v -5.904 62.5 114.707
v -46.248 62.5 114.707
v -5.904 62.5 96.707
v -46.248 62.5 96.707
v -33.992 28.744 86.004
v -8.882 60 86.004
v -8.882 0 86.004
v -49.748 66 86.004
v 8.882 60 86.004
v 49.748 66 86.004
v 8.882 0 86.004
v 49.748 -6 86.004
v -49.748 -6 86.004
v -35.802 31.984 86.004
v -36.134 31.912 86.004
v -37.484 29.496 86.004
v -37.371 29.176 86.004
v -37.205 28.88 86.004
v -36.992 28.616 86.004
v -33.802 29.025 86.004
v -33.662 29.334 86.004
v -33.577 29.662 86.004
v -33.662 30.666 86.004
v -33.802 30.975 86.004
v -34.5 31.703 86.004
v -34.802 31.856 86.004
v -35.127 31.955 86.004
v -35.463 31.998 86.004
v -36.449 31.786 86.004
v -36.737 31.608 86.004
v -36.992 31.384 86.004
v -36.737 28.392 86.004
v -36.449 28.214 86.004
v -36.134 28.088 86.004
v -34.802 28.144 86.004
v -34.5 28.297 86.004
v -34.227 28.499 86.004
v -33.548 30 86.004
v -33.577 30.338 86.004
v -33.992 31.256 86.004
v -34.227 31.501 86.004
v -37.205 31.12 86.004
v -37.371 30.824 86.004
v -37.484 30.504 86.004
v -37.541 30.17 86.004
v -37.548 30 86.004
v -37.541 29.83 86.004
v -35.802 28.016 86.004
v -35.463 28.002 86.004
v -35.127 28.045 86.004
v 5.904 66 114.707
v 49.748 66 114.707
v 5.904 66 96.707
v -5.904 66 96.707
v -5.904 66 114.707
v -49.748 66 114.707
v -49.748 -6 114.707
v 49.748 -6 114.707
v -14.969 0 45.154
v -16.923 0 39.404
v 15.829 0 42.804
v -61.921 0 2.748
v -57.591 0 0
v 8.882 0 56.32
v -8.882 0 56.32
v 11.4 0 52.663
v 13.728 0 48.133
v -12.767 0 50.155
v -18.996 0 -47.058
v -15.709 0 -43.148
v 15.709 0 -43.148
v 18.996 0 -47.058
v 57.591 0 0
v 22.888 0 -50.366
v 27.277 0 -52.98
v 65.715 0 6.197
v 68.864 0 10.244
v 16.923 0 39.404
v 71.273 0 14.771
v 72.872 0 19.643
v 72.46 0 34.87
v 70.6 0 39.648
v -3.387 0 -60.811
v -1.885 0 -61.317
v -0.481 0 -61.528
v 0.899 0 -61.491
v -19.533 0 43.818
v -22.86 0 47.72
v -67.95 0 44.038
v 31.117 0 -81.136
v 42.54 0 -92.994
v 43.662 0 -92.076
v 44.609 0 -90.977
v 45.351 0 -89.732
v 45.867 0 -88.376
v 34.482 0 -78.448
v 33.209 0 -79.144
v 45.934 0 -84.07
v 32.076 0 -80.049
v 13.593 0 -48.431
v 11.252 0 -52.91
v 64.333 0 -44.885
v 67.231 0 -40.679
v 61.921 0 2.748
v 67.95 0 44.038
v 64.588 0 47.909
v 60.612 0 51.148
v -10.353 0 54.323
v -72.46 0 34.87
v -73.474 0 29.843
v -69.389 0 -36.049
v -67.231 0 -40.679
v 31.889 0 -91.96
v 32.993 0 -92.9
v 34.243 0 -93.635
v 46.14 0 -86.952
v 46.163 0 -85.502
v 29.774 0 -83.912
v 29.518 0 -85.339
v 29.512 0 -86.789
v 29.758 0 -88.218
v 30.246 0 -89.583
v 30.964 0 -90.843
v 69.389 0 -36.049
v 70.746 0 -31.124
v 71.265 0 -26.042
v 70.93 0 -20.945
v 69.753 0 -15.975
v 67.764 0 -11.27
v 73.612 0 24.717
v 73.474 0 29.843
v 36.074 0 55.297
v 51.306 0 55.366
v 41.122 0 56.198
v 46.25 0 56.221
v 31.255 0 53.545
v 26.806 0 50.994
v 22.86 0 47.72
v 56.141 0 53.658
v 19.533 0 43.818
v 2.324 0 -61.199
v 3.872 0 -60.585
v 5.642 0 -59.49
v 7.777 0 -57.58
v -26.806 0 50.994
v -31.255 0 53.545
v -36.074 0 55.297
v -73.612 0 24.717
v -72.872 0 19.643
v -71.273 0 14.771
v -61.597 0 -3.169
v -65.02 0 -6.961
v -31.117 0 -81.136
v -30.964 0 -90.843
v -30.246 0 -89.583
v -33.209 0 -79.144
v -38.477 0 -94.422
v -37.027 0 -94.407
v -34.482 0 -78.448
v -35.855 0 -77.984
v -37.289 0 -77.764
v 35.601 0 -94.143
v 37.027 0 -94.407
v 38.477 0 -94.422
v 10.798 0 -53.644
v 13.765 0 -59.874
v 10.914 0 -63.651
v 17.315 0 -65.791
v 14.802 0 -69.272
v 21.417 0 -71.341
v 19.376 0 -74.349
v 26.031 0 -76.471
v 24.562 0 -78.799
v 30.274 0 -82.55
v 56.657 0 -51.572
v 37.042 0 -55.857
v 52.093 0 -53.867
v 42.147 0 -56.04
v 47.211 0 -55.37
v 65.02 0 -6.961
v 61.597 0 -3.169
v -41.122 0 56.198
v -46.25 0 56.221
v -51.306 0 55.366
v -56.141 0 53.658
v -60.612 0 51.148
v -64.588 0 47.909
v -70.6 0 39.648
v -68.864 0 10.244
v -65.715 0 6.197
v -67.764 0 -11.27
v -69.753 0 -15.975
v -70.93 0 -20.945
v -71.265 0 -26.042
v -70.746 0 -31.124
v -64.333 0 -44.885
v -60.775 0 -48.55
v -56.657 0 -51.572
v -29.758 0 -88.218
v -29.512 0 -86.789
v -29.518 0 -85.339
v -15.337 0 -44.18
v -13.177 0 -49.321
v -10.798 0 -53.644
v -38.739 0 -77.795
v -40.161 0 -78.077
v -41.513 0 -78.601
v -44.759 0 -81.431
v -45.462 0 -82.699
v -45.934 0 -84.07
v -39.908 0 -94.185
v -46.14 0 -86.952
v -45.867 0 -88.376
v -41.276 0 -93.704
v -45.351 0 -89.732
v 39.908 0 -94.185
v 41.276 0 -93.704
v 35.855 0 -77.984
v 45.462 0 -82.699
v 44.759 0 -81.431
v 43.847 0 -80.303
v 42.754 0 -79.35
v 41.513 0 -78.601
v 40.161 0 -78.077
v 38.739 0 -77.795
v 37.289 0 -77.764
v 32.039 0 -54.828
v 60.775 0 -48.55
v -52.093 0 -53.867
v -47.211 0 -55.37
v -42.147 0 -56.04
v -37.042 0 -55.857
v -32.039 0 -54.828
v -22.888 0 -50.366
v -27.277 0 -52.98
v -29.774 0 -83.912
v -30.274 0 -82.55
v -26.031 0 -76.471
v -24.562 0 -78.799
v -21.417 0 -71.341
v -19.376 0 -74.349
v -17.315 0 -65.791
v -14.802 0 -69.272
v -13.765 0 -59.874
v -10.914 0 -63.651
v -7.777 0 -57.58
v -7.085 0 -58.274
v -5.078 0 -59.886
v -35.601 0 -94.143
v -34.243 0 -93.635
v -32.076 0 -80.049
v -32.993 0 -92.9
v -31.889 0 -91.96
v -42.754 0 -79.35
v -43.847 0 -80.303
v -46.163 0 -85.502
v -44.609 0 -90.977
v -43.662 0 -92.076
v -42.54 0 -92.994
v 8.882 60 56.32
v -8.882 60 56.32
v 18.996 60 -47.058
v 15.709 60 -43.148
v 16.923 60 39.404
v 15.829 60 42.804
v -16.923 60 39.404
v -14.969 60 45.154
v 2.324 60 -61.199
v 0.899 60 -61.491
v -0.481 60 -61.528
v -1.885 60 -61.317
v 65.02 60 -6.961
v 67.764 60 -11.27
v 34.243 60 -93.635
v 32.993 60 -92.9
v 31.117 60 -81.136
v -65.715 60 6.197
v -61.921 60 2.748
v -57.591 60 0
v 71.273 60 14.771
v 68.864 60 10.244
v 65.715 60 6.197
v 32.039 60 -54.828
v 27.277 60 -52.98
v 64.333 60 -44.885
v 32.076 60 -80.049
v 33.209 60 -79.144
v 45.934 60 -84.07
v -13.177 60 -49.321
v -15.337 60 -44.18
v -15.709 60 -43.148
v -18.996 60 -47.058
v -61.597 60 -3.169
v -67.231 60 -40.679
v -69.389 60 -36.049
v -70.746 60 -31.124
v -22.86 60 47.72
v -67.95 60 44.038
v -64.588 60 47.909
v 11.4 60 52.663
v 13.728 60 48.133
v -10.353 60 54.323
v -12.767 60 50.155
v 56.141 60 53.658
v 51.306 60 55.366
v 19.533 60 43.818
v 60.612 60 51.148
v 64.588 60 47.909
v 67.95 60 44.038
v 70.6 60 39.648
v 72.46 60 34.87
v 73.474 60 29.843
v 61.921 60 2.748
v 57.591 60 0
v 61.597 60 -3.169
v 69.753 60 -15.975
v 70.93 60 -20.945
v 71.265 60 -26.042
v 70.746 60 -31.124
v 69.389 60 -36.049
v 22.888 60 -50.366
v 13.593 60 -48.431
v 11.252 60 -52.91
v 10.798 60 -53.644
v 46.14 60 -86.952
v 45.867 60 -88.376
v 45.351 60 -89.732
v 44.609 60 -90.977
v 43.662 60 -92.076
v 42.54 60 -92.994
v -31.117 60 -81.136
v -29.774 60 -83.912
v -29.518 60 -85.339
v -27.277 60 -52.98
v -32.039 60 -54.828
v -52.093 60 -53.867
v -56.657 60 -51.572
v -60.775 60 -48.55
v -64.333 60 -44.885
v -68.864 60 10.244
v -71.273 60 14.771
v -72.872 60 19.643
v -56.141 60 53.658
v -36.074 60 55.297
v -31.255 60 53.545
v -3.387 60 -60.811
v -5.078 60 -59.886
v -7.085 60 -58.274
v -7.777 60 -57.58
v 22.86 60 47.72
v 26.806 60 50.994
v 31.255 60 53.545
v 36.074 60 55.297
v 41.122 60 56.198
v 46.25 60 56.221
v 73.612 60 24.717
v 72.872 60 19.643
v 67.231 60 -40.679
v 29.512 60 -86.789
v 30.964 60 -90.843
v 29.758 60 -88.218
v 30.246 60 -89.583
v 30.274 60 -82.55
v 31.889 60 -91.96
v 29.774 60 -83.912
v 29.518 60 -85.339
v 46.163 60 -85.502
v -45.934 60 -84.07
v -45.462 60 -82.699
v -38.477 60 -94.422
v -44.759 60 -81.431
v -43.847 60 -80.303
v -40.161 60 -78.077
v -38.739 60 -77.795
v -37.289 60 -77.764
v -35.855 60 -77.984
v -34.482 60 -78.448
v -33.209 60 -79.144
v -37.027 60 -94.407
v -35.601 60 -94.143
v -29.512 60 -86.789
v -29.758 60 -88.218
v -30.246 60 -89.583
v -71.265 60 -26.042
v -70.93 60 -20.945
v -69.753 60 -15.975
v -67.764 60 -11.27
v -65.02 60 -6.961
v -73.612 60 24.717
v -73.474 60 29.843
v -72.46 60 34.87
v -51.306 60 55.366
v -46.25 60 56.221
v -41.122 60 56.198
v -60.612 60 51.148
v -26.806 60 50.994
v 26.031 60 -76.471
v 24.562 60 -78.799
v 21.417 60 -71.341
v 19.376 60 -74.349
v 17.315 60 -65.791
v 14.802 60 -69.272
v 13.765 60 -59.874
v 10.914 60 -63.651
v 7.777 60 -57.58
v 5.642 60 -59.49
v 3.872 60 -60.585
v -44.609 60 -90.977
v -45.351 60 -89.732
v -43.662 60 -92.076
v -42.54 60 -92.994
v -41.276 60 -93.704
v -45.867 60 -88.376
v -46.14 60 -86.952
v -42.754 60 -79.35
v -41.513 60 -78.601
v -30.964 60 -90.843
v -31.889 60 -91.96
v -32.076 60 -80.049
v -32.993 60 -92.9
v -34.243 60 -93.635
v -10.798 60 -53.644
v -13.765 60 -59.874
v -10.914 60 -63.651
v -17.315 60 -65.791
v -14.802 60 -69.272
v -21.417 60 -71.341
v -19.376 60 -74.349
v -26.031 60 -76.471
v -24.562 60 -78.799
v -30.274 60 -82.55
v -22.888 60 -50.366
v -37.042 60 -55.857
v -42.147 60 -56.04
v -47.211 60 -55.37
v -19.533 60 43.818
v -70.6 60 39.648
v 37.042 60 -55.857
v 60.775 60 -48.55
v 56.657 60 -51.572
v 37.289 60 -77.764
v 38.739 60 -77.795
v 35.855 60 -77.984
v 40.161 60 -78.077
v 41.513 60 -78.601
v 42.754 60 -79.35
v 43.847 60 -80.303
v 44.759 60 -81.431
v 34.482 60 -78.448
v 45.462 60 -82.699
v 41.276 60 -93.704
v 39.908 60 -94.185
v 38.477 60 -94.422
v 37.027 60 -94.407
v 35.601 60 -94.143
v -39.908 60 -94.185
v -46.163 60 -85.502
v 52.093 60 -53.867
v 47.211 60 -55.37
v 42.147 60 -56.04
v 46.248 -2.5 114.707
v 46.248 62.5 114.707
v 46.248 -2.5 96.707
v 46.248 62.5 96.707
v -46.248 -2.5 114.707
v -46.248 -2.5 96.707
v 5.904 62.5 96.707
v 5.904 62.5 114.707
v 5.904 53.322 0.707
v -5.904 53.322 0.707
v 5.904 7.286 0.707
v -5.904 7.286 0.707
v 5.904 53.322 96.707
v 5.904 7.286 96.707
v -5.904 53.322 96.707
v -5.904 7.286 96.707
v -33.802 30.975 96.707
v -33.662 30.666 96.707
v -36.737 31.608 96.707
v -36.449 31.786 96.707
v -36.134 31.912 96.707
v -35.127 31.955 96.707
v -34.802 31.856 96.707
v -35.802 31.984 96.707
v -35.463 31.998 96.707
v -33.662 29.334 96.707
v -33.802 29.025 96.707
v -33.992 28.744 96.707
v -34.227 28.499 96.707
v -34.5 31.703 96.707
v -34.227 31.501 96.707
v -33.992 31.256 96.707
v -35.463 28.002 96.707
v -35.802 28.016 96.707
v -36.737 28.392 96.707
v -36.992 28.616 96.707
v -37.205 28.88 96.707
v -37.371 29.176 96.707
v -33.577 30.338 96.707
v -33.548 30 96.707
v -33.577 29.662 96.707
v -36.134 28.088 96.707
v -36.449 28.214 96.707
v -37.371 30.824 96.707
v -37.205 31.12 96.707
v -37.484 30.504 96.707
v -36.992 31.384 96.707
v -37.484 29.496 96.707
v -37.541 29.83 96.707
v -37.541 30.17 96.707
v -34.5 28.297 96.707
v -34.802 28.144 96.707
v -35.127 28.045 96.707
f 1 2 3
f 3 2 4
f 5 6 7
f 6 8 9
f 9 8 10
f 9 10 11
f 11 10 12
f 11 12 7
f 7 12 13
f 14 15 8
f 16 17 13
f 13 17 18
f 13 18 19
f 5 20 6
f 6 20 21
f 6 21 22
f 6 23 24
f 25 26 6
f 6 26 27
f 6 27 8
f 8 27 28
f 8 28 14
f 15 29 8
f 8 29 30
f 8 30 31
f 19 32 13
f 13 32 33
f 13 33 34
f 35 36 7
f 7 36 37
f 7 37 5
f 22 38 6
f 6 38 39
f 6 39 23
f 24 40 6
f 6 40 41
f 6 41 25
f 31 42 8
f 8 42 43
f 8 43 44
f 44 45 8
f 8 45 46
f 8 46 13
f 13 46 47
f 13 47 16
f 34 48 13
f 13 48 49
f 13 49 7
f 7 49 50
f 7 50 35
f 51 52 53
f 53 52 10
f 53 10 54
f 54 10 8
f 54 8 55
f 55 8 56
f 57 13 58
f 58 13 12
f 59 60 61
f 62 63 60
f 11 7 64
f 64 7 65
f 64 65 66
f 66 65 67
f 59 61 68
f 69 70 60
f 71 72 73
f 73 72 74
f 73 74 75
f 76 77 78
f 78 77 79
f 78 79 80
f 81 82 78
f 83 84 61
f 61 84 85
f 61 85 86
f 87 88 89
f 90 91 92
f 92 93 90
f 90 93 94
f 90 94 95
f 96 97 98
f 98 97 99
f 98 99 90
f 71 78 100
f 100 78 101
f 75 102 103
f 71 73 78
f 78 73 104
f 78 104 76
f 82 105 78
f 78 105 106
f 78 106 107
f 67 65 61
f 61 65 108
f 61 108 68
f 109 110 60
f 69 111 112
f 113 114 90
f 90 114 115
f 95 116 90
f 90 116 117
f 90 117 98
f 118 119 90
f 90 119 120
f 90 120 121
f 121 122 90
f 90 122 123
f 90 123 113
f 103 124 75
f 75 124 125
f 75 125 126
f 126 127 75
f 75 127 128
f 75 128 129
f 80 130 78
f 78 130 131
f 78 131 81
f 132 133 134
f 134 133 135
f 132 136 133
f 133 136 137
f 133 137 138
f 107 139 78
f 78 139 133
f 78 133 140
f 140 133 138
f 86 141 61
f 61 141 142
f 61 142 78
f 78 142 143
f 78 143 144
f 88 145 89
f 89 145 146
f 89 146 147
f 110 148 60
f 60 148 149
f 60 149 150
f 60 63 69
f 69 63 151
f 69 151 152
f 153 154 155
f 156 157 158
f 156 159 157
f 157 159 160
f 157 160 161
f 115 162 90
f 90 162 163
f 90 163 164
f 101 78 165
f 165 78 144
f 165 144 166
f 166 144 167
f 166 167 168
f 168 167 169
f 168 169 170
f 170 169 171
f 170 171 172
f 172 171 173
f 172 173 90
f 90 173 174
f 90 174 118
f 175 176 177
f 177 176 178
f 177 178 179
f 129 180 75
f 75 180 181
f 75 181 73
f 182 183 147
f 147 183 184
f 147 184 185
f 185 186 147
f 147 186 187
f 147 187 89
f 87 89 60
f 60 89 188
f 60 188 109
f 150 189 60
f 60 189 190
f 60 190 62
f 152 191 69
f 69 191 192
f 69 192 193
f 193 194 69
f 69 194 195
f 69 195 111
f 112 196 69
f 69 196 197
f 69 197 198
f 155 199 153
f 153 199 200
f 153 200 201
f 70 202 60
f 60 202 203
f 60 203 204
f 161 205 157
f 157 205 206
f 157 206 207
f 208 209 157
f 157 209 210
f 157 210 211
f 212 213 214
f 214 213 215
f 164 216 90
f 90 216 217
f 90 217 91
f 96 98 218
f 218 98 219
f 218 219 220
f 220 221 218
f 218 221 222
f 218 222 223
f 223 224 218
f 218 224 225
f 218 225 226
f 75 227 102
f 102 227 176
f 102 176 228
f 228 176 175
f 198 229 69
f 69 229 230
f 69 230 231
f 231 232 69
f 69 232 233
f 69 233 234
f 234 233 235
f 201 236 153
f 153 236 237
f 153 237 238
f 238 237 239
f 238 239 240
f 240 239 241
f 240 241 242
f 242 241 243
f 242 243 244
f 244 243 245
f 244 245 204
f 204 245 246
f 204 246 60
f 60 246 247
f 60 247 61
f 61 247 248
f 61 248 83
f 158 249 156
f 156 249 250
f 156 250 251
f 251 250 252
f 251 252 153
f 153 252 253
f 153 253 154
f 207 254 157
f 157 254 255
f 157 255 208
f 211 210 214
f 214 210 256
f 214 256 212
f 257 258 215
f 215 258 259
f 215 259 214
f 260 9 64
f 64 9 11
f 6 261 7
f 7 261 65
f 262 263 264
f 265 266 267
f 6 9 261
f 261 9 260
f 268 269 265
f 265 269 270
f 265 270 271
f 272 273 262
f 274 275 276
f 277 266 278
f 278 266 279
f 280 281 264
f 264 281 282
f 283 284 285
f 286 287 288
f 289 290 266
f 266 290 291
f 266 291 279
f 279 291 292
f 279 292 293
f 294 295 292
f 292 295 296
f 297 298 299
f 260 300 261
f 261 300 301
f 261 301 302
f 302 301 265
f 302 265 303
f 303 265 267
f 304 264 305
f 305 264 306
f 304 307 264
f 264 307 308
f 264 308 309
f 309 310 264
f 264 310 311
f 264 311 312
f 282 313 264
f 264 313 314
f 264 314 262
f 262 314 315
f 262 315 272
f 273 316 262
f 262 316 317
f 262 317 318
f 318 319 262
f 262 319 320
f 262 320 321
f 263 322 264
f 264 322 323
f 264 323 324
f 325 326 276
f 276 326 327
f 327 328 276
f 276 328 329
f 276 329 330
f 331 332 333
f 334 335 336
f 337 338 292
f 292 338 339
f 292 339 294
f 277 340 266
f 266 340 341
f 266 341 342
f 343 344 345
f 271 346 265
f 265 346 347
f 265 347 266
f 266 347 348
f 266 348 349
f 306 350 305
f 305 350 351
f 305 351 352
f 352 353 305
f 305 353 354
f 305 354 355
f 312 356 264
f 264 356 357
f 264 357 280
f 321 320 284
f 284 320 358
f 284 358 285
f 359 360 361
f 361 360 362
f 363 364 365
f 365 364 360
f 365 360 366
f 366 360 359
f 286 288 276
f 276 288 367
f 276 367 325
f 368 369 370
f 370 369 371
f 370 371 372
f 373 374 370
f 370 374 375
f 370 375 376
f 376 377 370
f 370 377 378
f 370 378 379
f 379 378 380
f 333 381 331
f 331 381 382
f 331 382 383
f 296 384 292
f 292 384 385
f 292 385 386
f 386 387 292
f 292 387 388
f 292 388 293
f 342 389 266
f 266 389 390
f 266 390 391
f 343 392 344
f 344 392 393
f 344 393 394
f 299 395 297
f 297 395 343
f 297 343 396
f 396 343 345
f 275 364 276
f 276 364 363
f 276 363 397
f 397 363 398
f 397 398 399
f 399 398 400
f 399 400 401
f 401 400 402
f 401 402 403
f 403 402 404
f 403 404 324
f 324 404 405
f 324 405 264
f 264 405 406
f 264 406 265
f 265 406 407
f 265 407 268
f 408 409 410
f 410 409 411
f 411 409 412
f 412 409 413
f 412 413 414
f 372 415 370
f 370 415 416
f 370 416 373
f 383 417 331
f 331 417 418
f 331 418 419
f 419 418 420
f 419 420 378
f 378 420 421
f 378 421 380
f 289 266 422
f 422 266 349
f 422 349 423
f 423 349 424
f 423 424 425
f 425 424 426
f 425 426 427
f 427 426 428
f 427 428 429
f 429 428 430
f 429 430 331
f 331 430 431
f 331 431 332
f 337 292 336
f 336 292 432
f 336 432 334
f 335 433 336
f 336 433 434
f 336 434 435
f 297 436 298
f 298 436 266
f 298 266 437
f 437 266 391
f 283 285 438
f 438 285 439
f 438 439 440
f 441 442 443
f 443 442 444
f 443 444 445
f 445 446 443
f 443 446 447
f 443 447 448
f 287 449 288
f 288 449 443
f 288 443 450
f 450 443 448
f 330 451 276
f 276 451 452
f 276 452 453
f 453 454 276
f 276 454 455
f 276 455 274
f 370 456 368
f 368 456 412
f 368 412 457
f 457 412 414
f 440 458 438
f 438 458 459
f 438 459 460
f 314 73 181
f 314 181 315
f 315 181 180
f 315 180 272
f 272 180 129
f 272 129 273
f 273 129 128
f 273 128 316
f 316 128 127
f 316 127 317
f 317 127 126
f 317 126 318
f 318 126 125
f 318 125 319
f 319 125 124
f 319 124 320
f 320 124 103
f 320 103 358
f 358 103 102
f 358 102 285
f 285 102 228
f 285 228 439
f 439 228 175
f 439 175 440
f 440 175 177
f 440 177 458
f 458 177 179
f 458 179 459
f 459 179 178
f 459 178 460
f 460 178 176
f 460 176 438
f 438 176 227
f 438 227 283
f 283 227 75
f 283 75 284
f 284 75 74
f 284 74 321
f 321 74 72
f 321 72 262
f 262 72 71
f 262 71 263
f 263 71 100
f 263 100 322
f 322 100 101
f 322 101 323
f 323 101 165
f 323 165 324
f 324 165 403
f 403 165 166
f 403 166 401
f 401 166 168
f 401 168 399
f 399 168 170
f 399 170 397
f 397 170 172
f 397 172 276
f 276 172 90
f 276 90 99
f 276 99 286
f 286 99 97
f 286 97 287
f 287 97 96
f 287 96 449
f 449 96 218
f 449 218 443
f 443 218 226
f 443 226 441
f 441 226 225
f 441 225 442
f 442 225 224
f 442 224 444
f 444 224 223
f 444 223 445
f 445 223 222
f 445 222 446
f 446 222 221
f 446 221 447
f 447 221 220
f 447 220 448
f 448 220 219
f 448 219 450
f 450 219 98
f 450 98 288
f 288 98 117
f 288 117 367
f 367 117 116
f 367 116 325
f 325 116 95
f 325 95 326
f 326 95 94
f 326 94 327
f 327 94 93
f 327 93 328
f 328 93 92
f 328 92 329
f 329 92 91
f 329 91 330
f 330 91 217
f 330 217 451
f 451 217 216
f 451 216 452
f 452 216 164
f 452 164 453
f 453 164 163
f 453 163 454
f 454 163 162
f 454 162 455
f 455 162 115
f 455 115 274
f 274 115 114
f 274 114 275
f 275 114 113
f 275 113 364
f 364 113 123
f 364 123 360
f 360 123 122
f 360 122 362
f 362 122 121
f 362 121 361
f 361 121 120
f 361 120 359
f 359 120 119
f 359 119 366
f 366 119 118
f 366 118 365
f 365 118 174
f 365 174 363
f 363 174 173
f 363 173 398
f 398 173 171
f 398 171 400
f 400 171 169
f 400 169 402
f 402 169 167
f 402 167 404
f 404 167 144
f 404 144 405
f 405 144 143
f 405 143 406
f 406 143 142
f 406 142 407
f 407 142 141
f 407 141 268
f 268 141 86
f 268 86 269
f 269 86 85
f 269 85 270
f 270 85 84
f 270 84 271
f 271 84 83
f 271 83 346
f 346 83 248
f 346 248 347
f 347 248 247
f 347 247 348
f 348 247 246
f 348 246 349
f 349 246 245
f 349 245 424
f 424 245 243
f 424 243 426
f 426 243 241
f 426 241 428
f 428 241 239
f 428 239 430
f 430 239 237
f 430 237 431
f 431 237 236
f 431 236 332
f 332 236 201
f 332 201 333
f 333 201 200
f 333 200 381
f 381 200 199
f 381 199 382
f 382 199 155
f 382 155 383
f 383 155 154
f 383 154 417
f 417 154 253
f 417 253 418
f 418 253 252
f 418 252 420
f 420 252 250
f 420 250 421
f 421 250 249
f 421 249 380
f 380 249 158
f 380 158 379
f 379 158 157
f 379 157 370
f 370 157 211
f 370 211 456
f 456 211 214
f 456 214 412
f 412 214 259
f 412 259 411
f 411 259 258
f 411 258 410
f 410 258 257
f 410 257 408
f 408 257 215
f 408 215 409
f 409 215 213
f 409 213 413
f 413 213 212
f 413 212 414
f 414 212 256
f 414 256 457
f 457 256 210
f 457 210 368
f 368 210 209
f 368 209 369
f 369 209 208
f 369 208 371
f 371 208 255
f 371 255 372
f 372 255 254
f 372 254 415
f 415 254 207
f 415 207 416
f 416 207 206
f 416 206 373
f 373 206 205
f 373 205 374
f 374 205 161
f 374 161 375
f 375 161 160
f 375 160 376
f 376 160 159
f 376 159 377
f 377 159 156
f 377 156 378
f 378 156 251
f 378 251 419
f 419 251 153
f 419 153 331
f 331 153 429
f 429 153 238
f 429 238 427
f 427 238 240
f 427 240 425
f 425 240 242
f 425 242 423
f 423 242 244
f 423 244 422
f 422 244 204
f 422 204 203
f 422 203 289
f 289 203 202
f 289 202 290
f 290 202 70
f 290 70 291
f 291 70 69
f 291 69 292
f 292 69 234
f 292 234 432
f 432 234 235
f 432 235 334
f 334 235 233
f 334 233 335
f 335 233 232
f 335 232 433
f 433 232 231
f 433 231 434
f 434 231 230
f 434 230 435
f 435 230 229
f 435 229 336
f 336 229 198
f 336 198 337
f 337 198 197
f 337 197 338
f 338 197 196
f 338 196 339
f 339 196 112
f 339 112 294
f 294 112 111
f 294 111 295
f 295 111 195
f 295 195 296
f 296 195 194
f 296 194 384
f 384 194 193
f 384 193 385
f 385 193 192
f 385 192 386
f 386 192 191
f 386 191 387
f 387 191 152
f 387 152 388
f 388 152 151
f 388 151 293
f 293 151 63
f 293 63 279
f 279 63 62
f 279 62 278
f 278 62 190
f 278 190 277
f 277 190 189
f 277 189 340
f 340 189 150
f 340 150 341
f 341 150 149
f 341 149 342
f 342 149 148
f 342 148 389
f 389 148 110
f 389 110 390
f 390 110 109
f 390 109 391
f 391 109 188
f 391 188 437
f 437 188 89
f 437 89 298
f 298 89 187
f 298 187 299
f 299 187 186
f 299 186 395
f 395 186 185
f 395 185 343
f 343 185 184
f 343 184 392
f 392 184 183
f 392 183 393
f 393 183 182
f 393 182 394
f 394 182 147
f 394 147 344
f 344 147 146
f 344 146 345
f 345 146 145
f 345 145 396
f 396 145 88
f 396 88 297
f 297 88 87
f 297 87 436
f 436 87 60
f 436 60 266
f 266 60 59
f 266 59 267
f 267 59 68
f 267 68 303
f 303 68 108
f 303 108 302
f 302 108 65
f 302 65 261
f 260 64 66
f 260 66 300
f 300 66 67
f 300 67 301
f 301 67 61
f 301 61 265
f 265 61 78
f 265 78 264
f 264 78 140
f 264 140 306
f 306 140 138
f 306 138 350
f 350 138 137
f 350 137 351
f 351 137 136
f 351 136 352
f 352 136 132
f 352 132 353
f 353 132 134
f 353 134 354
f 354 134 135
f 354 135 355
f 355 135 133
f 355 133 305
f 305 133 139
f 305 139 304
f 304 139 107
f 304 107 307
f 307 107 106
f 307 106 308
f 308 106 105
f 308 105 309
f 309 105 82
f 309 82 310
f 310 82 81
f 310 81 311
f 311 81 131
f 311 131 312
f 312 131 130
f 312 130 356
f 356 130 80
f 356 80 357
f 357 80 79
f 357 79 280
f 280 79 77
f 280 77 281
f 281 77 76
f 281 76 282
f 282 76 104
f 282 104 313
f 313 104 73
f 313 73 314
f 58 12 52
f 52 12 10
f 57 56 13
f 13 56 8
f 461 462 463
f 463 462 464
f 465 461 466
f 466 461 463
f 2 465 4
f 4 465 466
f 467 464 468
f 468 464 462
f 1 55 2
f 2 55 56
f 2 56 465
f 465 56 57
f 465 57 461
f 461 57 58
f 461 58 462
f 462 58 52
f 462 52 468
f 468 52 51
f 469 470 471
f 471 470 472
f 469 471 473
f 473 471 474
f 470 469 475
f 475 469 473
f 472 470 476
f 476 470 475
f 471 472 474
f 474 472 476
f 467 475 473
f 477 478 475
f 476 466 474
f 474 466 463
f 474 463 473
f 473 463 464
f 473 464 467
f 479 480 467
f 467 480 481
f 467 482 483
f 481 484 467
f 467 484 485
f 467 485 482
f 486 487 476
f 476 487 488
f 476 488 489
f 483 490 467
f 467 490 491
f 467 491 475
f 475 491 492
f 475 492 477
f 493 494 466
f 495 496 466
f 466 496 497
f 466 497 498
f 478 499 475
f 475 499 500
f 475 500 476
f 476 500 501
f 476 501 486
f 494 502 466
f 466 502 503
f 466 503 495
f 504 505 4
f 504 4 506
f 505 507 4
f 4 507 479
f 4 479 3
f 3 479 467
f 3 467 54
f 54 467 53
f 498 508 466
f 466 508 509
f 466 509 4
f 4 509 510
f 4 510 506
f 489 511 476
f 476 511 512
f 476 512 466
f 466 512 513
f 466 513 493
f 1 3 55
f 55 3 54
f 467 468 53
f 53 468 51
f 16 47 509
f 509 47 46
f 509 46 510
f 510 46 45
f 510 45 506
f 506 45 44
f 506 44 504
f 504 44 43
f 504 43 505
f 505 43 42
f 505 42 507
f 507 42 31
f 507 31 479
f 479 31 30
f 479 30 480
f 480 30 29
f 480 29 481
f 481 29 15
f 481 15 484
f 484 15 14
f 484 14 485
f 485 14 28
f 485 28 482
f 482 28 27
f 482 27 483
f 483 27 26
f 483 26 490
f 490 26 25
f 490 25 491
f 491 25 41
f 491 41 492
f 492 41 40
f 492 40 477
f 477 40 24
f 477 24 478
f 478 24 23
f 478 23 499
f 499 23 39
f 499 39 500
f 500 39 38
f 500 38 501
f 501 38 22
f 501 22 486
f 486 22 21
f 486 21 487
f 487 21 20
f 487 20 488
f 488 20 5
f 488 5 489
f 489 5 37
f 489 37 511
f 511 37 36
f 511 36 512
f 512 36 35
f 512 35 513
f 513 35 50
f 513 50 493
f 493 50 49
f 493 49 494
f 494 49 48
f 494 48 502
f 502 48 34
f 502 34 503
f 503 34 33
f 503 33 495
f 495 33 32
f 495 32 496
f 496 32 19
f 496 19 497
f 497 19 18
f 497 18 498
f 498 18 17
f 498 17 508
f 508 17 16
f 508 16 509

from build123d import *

# Parameters (mm, degrees)
BOSS_EXTRUDE1_DEPTH   = 60
BOSS_EXTRUDE1_2_DEPTH = 60
BOSS_EXTRUDE2_DEPTH   = 60
SKETCH5_W             = 11.80892804
SKETCH5_H             = 46.036446736
CUT_EXTRUDE1_DEPTH    = 96
SKETCH6_W             = 121.736344994
SKETCH6_H             = 10.703718027
BOSS_EXTRUDE5_DEPTH   = 6
SKETCH8_W             = 121.736344994
SKETCH8_H             = 10.703718027
BOSS_EXTRUDE6_DEPTH   = 6
SKETCH9_W             = 10.703718027
SKETCH9_H             = 72
CUT_EXTRUDE2_DEPTH    = 11.12
SKETCH10_W            = 10.703718027
SKETCH10_H            = 72
CUT_EXTRUDE3_DEPTH    = 11.12
SKETCH11_W            = 99.496344994
SKETCH11_H            = 72
SKETCH11_W_2          = 92.496344994
SKETCH11_H_2          = 65
BOSS_EXTRUDE7_DEPTH   = 18
SKETCH13_W            = 11.80892804
SKETCH13_H            = 18
CUT_EXTRUDE4_DEPTH    = 18
CUT_EXTRUDE5_REACH    = 217.226


with BuildPart() as part:
    # Sketch2 → Boss-Extrude1 (new body)
    with BuildSketch(Plane(origin=(0, 0, 0), x_dir=(1, 0, 0), z_dir=(0, 1, 0))):
        with BuildLine():
            add(Edge.make_bspline(
                [(7.777313634, 57.580294912), (4.018004463, 61.542658867), (0, 61.542658867)],
                knots=[5.922388911, 5.922388911, 5.922388911, 6.283185307, 6.283185307, 6.283185307], degree=2, weights=[1, 0.983772326, 1]))
            add(Edge.make_bspline(
                [(0, 61.542658867), (-4.018004463, 61.542658867), (-7.777313634, 57.580294912)],
                knots=[0, 0, 0, 0.360796396, 0.360796396, 0.360796396], degree=2, weights=[1, 0.983772326, 1]))
            ThreePointArc((-7.777313634, 57.580294912), (-17.007519977, 71.883457215), (-30.273865697, 82.550285809))
            ThreePointArc((-30.273865697, 82.550285809), (-45.006964161, 90.370546247), (-31.116710716, 81.135746686))
            ThreePointArc((-31.116710716, 81.135746686), (-19.299209246, 68.615142689), (-10.798016849, 53.643549812))
            add(Edge.make_bspline(
                [(-10.798016849, 53.643549812), (-13.519932633, 49.368001998), (-15.70928604, 43.147803925)],
                knots=[0.512241162, 0.512241162, 0.512241162, 0.793851756, 0.793851756, 0.793851756], degree=2, weights=[1, 0.990103302, 1]))
            ThreePointArc((-15.70928604, 43.147803925), (-62.630509673, 46.791979985), (-57.591476489, 0))
            ThreePointArc((-57.591476489, 0), (-64.587633529, -47.909506078), (-16.922901007, -39.404198342))
            add(Edge.make_bspline(
                [(-16.922901007, -39.404198342), (-13.612763141, -50.497708668), (-8.881626587, -56.319902877)],
                knots=[2.265651961, 2.265651961, 2.265651961, 2.726641474, 2.726641474, 2.726641474], degree=2, weights=[1, 0.973553482, 1]))
            Line((-8.881626587, -56.319902877), (8.881626587, -56.319902877))
            add(Edge.make_bspline(
                [(8.881626587, -56.319902877), (13.612763141, -50.497708668), (16.922901007, -39.404198342)],
                knots=[3.556543833, 3.556543833, 3.556543833, 4.017533346, 4.017533346, 4.017533346], degree=2, weights=[1, 0.973553482, 1]))
            ThreePointArc((16.922901007, -39.404198342), (64.587633529, -47.909506078), (57.591476489, 0))
            ThreePointArc((57.591476489, 0), (62.630509673, 46.791979985), (15.70928604, 43.147803925))
            add(Edge.make_bspline(
                [(15.70928604, 43.147803925), (13.519932633, 49.368001998), (10.798016849, 53.643549812)],
                knots=[5.489333551, 5.489333551, 5.489333551, 5.770944145, 5.770944145, 5.770944145], degree=2, weights=[1, 0.990103302, 1]))
            ThreePointArc((10.798016849, 53.643549812), (19.299209246, 68.615142689), (31.116710716, 81.135746686))
            ThreePointArc((31.116710716, 81.135746686), (45.006964161, 90.370546247), (30.273865697, 82.550285809))
            ThreePointArc((30.273865697, 82.550285809), (17.007519977, 71.883457215), (7.777313634, 57.580294912))
        make_face()
    extrude(amount=BOSS_EXTRUDE1_DEPTH)



with BuildPart() as body_2:
    # Sketch2 → Boss-Extrude1 2 (new body)
    with BuildSketch(Plane(origin=(0, 0, 0), x_dir=(1, 0, 0), z_dir=(0, 1, 0))):
        with BuildLine():
            add(Edge.make_bspline(
                [(0, -61.542658867), (4.637595748, -61.542658867), (8.881626587, -56.319902877)],
                knots=[3.141592654, 3.141592654, 3.141592654, 3.556543833, 3.556543833, 3.556543833], degree=2, weights=[1, 0.978554036, 1]))
            add(Edge.make_bspline(
                [(-8.881626587, -56.319902877), (-4.637595748, -61.542658867), (0, -61.542658867)],
                knots=[2.726641474, 2.726641474, 2.726641474, 3.141592654, 3.141592654, 3.141592654], degree=2, weights=[1, 0.978554036, 1]))
            Line((-8.881626587, -56.319902877), (-8.881626587, -86.003647397))
            Line((-8.881626587, -86.003647397), (-60.868172497, -86.003647397))
            Line((-60.868172497, -86.003647397), (-60.868172497, -96.707365424))
            Line((-60.868172497, -96.707365424), (60.868172497, -96.707365424))
            Line((60.868172497, -96.707365424), (60.868172497, -86.003647397))
            Line((60.868172497, -86.003647397), (8.881626587, -86.003647397))
            Line((8.881626587, -86.003647397), (8.881626587, -56.319902877))
        make_face()
    extrude(amount=BOSS_EXTRUDE1_2_DEPTH)


with BuildPart() as part_1:
    add(part.part)

    add(body_2.part)  # Boss-Extrude2 merges body 2
    # Sketch2<4> → Boss-Extrude2 (add)
    with BuildSketch(Plane(origin=(0, 0, 0), x_dir=(1, 0, 0), z_dir=(0, 1, 0))):
        with BuildLine():
            Line((8.881626587, -56.319902877), (-8.881626587, -56.319902877))
            add(Edge.make_bspline(
                [(-8.881626587, -56.319902877), (-4.637595748, -61.542658867), (0, -61.542658867)],
                knots=[2.726641474, 2.726641474, 2.726641474, 3.141592654, 3.141592654, 3.141592654], degree=2, weights=[1, 0.978554036, 1]))
            add(Edge.make_bspline(
                [(0, -61.542658867), (4.637595748, -61.542658867), (8.881626587, -56.319902877)],
                knots=[3.141592654, 3.141592654, 3.141592654, 3.556543833, 3.556543833, 3.556543833], degree=2, weights=[1, 0.978554036, 1]))
        make_face()
    extrude(amount=BOSS_EXTRUDE2_DEPTH)

    # Sketch5 → Cut-Extrude1 (cut)
    with BuildSketch(Plane.XY.offset(96.707365424)):
        with Locations((0, 30.304042831)):
            Rectangle(SKETCH5_W, SKETCH5_H)
    extrude(amount=-CUT_EXTRUDE1_DEPTH, mode=Mode.SUBTRACT)

    # Sketch6 → Boss-Extrude5 (add)
    with BuildSketch(Plane(origin=(0, 60, 0), x_dir=(1, 0, 0), z_dir=(0, 1, 0))):
        with Locations((0, -91.35550641)):
            Rectangle(SKETCH6_W, SKETCH6_H)
    extrude(amount=BOSS_EXTRUDE5_DEPTH)

    # Sketch8 → Boss-Extrude6 (add)
    with BuildSketch(Plane.XZ):
        with Locations((0, 91.35550641)):
            Rectangle(SKETCH8_W, SKETCH8_H)
    extrude(amount=BOSS_EXTRUDE6_DEPTH)

    # Sketch9 → Cut-Extrude2 (cut)
    with BuildSketch(Plane(origin=(60.868172497, 0, 0), x_dir=(0, 0, -1), z_dir=(1, 0, 0))):
        with Locations((-91.35550641, 30)):
            Rectangle(SKETCH9_W, SKETCH9_H)
    extrude(amount=-CUT_EXTRUDE2_DEPTH, mode=Mode.SUBTRACT)

    # Sketch10 → Cut-Extrude3 (cut)
    with BuildSketch(Plane.ZY.offset(60.868172497)):
        with Locations((91.35550641, 30)):
            Rectangle(SKETCH10_W, SKETCH10_H)
    extrude(amount=-CUT_EXTRUDE3_DEPTH, mode=Mode.SUBTRACT)

    # Sketch11 → Boss-Extrude7 (add)
    with BuildSketch(Plane.XY.offset(96.707365424)):
        with Locations((0, 30)):
            Rectangle(SKETCH11_W, SKETCH11_H)
        with Locations((0, 30)):
            Rectangle(SKETCH11_W_2, SKETCH11_H_2, mode=Mode.SUBTRACT)
    extrude(amount=BOSS_EXTRUDE7_DEPTH)

    # Sketch13 → Cut-Extrude4 (cut)
    with BuildSketch(Plane.XZ.offset(-62.5)):
        with Locations((0, 105.707365424)):
            Rectangle(SKETCH13_W, SKETCH13_H)
    extrude(amount=-CUT_EXTRUDE4_DEPTH, mode=Mode.SUBTRACT)

    # Sketch14 → Cut-Extrude5 (cut, up to next)
    with BuildSketch(Plane.XY.offset(96.707365424), mode=Mode.PRIVATE) as cut_extrude5_sk1:
        with BuildLine():
            ThreePointArc((-37.548172497, 30), (-35.548172497, 28), (-33.548172497, 30))
            ThreePointArc((-33.548172497, 30), (-35.548172497, 32), (-37.548172497, 30))
        make_face()
    cut_extrude5_tool1 = extrude(cut_extrude5_sk1.sketch, amount=-CUT_EXTRUDE5_REACH, mode=Mode.PRIVATE) & part_1.part
    add(cut_extrude5_tool1.solids().sort_by_distance((-35.548172, 30, 96.707365))[0], mode=Mode.SUBTRACT)


solid = part_1.part
